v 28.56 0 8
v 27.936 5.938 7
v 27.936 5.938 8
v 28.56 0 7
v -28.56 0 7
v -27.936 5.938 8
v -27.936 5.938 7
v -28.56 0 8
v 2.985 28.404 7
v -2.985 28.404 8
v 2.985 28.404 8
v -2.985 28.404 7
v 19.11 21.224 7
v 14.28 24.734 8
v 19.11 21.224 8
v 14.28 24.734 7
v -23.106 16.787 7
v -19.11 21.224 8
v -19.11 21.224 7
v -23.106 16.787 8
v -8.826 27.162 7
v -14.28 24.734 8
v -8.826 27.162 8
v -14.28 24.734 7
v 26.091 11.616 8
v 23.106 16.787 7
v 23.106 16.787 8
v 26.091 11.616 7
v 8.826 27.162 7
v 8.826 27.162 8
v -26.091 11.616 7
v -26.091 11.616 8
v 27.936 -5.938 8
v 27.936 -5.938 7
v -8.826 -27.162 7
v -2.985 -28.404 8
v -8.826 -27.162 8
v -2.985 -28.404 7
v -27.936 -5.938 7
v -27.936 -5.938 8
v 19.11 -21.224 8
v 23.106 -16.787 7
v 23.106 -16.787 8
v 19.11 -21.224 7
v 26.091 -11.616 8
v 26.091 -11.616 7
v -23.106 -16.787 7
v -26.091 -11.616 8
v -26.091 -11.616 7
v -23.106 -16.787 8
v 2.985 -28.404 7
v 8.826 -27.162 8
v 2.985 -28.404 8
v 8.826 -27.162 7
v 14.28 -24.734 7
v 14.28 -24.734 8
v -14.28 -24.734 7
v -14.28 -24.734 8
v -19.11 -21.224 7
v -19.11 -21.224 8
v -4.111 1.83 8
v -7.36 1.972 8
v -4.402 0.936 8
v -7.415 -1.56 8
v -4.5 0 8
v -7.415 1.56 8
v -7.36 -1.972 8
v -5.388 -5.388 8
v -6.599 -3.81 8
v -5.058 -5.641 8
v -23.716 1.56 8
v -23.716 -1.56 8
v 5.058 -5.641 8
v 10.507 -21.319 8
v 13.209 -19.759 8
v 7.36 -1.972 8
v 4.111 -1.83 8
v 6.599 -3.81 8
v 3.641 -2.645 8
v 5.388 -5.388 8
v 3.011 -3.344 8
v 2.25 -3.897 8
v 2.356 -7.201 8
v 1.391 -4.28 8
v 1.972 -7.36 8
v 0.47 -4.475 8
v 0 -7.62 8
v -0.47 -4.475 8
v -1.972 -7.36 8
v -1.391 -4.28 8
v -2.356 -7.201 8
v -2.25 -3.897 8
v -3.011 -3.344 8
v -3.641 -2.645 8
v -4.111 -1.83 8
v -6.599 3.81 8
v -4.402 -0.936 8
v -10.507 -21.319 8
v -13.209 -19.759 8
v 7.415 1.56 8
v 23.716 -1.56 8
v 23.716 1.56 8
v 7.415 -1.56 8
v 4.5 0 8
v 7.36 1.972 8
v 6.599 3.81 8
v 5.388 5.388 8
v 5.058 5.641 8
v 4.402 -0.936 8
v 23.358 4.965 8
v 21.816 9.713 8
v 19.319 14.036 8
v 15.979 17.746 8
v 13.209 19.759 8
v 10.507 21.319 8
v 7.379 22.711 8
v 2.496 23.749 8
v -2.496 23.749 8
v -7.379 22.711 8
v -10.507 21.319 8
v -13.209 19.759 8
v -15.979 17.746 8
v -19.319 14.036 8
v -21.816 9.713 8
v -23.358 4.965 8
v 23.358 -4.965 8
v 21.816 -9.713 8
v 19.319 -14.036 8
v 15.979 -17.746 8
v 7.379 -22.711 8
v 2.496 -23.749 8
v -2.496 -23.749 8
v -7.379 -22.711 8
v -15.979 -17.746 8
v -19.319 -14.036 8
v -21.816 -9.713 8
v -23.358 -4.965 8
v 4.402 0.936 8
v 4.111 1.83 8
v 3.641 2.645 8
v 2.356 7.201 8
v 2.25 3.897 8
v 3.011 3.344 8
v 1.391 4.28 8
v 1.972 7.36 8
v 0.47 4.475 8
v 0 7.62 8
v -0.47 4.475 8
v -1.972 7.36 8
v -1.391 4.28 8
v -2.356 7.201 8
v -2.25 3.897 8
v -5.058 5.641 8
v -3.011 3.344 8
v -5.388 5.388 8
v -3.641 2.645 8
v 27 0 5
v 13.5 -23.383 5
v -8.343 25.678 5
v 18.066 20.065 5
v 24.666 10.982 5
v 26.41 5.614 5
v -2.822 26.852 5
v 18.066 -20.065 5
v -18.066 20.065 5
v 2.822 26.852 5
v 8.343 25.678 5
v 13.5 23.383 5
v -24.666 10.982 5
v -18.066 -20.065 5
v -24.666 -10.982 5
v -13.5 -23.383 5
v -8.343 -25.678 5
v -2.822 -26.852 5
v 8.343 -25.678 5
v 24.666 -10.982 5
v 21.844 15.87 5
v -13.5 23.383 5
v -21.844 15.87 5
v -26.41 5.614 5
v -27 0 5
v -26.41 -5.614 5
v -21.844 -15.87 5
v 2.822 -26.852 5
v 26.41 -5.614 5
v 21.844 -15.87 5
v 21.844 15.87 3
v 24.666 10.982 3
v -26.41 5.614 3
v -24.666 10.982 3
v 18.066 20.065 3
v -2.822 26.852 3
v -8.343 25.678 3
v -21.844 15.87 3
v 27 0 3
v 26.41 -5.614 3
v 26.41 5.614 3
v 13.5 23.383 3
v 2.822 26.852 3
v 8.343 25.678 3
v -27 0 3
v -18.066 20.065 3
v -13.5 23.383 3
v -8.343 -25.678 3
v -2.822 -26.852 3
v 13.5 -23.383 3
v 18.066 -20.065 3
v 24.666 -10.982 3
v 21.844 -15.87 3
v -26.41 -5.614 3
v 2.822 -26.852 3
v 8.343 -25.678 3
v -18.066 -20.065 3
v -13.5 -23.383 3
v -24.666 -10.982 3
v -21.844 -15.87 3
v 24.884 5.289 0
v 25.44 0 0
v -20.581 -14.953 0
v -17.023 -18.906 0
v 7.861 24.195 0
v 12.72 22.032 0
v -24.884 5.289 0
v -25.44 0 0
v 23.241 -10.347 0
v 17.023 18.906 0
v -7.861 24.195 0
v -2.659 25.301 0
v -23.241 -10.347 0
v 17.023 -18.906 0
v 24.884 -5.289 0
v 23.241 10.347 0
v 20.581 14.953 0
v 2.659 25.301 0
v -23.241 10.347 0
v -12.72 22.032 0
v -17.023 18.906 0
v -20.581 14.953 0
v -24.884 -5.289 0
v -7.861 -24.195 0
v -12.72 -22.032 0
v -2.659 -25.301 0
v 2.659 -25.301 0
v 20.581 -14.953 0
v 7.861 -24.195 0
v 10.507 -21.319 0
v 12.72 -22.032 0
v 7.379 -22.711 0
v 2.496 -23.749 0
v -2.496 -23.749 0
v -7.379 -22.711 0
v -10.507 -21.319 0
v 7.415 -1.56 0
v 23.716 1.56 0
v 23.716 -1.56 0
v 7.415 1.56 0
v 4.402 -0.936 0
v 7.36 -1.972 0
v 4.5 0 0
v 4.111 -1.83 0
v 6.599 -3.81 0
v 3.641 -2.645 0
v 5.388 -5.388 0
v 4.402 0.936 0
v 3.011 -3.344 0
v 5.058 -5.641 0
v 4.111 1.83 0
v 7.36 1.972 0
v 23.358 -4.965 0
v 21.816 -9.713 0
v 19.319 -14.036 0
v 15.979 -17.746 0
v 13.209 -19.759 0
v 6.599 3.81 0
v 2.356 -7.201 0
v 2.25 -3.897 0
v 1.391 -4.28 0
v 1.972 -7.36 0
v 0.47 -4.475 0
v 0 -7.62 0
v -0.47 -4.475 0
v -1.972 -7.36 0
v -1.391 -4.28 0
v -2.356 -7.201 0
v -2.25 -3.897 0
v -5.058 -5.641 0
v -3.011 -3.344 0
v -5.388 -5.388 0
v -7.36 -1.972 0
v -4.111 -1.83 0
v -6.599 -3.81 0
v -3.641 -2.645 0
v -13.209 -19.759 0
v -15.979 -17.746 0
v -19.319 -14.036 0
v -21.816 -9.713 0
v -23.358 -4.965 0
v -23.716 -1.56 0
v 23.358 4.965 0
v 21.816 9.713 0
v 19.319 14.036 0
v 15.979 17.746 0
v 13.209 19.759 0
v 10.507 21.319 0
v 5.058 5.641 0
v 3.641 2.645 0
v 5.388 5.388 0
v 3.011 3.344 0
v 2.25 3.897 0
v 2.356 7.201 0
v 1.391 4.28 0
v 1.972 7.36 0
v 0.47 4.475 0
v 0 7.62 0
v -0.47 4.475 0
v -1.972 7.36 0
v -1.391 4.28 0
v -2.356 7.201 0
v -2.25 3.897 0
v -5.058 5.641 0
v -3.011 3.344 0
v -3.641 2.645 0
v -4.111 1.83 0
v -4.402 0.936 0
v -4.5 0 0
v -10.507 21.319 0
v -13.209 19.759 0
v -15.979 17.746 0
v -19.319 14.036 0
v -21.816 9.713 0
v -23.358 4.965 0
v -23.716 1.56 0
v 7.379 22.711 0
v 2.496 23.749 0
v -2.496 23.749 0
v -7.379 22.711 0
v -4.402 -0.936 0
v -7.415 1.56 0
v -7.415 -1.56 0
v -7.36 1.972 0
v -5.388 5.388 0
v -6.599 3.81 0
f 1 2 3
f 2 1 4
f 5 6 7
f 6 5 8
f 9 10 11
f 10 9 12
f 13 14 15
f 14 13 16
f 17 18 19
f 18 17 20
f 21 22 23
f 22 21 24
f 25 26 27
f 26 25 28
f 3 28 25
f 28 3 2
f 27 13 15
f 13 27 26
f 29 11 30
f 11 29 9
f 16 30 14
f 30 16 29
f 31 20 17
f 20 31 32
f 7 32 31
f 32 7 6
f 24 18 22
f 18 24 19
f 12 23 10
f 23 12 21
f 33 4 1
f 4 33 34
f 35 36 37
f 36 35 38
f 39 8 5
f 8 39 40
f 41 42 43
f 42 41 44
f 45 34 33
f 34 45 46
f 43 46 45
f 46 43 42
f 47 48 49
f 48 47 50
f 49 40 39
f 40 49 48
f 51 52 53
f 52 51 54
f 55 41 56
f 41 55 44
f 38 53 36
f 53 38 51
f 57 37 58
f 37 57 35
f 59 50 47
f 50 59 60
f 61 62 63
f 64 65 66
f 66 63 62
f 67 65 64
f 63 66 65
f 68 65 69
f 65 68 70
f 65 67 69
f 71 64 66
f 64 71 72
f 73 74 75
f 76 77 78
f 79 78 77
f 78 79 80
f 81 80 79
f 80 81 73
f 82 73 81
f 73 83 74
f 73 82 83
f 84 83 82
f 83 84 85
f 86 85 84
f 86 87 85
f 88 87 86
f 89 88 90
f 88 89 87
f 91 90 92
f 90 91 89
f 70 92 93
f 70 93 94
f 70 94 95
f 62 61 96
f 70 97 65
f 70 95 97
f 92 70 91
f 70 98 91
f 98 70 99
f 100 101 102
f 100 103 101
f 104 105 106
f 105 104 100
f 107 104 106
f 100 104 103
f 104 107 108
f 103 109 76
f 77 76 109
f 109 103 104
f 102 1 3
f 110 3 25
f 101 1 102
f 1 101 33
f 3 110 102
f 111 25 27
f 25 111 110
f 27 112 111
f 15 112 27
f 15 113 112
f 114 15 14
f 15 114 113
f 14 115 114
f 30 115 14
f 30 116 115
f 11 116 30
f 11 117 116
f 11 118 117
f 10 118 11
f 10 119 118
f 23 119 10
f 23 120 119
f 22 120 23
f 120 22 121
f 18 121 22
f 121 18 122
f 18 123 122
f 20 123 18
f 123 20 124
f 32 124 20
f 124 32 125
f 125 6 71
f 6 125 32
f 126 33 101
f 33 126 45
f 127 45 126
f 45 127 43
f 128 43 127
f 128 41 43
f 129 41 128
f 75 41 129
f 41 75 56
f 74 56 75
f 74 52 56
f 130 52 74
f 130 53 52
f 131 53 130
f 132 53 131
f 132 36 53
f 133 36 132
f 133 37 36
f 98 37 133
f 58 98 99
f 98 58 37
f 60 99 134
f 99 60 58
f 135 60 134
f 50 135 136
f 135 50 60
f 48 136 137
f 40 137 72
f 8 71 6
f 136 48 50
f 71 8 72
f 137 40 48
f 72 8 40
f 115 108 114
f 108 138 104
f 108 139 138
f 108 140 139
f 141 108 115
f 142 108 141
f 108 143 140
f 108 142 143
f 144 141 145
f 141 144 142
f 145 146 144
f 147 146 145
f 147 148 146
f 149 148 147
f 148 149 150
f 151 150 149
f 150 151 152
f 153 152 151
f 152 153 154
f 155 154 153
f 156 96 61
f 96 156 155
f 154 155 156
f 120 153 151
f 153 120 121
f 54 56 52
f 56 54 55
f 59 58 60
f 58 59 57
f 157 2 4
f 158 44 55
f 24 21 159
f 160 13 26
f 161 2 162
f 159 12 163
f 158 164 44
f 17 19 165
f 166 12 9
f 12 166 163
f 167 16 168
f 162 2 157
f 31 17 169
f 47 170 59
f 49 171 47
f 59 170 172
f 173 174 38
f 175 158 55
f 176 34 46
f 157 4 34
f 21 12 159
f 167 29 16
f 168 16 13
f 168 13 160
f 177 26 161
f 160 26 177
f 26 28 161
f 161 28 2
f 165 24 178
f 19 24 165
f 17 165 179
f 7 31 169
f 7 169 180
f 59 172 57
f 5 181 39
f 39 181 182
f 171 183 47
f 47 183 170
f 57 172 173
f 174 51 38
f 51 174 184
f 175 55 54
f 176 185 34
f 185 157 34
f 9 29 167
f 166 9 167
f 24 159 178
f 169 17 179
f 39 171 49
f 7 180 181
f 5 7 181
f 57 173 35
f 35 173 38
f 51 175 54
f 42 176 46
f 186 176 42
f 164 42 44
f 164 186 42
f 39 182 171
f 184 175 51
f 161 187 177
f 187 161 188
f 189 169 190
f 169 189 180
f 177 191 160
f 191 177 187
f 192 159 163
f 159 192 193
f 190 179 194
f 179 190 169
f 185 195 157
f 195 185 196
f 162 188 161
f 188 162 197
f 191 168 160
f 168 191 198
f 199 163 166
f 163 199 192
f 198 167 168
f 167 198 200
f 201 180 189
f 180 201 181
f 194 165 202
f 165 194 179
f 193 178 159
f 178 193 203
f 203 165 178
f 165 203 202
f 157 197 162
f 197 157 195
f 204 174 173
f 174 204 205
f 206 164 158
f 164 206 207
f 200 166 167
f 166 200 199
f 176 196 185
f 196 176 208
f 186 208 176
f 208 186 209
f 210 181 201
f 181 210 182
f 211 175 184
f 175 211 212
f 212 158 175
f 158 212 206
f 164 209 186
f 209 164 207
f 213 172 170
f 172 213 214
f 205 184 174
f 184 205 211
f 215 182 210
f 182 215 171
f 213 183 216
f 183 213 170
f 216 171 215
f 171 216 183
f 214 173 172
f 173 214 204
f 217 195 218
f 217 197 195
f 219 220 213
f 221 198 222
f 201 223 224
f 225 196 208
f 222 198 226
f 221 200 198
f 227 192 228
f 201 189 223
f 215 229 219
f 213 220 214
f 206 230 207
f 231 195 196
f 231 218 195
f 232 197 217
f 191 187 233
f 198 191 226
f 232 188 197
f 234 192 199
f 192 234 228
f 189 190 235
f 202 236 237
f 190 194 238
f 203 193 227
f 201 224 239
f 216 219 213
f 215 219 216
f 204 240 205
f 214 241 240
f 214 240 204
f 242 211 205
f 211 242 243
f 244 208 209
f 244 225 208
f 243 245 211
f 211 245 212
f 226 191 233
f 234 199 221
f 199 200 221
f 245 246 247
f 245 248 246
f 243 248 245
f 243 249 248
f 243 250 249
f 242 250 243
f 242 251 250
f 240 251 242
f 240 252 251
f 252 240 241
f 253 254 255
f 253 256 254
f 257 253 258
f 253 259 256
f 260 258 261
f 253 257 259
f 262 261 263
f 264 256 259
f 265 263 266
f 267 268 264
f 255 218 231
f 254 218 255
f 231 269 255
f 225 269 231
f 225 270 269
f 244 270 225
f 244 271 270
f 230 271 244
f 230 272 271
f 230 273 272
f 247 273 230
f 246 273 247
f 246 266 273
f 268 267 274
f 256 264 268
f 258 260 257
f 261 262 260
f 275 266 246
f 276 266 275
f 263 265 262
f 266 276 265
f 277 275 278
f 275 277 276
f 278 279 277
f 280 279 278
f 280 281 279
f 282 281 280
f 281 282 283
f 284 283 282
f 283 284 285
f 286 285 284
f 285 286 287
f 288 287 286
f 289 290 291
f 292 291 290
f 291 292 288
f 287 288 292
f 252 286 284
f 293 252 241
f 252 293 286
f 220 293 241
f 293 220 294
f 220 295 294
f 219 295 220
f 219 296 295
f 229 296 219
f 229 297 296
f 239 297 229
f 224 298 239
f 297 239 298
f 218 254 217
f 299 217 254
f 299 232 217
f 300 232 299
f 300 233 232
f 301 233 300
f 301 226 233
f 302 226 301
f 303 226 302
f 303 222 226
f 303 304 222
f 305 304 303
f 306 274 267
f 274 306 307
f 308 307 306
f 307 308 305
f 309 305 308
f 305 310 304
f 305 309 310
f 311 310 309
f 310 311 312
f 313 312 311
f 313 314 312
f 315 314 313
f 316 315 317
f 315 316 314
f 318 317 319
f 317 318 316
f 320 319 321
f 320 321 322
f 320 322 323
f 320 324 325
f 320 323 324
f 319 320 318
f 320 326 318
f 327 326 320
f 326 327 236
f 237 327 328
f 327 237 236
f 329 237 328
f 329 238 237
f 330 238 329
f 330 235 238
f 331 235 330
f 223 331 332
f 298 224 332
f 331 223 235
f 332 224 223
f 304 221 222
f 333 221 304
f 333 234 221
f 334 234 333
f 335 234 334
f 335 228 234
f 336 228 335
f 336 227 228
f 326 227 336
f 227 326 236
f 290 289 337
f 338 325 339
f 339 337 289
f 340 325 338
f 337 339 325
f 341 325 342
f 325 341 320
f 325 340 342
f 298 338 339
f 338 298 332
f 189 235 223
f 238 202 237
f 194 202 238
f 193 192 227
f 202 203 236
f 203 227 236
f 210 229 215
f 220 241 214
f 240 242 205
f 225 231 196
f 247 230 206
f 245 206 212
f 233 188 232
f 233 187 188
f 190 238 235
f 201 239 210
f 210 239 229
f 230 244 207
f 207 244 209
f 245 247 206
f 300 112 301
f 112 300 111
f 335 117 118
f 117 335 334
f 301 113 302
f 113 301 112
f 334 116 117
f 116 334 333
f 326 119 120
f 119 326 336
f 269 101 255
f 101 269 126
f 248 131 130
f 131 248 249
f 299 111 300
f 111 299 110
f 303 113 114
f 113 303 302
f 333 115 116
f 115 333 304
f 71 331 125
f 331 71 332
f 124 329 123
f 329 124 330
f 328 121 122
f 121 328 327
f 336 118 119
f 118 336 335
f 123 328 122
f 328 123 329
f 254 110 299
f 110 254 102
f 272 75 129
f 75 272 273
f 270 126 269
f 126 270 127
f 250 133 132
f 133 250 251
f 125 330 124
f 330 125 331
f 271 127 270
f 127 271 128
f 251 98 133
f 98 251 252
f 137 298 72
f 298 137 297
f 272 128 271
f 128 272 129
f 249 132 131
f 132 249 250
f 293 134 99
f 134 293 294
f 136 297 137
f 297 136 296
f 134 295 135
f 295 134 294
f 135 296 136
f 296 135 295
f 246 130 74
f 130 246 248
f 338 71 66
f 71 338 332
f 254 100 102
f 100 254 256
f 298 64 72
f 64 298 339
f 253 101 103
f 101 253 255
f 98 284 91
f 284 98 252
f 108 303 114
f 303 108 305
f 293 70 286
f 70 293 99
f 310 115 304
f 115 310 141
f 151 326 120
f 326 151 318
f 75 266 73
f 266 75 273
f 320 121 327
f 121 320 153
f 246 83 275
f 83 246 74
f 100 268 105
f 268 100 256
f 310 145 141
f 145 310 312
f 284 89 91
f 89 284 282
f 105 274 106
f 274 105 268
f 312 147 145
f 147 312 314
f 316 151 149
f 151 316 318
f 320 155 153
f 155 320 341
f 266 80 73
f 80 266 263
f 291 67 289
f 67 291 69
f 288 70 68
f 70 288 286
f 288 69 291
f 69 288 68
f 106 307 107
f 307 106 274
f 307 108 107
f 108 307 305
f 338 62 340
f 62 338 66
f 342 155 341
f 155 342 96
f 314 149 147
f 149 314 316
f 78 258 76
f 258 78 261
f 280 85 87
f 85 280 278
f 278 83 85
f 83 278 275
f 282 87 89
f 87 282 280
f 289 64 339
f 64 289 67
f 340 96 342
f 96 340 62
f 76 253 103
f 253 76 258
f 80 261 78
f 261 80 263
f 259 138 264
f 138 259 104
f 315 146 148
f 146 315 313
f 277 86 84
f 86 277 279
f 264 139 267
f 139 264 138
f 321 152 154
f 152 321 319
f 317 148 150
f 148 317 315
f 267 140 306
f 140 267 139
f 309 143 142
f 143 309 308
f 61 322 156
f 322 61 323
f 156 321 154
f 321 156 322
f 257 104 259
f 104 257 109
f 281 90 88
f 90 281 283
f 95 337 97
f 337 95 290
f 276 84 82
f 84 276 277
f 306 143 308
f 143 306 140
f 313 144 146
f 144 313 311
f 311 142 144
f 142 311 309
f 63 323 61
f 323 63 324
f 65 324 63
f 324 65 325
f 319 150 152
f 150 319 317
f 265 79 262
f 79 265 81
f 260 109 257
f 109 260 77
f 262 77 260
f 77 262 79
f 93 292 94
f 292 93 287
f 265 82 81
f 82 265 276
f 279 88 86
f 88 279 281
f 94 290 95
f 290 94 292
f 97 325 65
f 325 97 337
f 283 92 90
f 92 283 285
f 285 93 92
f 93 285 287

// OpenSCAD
// PLASTIBOT MENDEL
// Spool Bushing
// Added settings for 1Kg Ultimachine spool.
// Plastibot <support@plastibot.com>
// Derived from: 

// Parametric Bushing
// by Generic
// http://www.thingiverse.com/thing:8697




module bushing(height, radius, hole_r, border,recess,num_support) {
	translate([0,0,height])
	mirror([0,0,1])
	difference() {
		union() {
			// Outer rings
			difference() {
				union() {
					cylinder(r=radius+border,h=1);
					translate([0,0,1]) {
						cylinder(h=2,r1=radius+border,r2=radius);
					}
					translate([0,0,3]) {
						cylinder(r=radius,h=height-6);
					}
					translate([0,0,height-3]) {
						cylinder(h=3,r1=radius,r2=radius-border);
					}
				}
				translate([0,0,-1]) {
					cylinder(r=radius-(border*2),h=height+border);
				}
			}
			// shafts
			for ( i=[0:num_support-1]) {
				rotate(a=[0,0,i*180/num_support]) {
					translate([-radius+border+0.4,-border,0]) {
						cube(size=[(radius-border)*2-0.6,border*2,height]);
					}
				}
			}
			// Central ring
			cylinder(r=hole_r+border*2,h=height);
		}
		translate([0,0,-1]) {
			// Central hole
			cylinder(r=hole_r,h=height+2,$fs=0.1);
			// Recess
			cylinder(r=radius-2*border, h=recess);
		}
	}
}


// Bushing BfB
//bushing(16, 75/2, 4.5, 1.56,5,3);

// Bushing orbitech
//bushing(16, 26.2, 4.5, 1.56,0,3);

// Bushing 51mm (ultimachine 1Kg)
bushing(8, 27, 4.5, 1.56,0,3);
